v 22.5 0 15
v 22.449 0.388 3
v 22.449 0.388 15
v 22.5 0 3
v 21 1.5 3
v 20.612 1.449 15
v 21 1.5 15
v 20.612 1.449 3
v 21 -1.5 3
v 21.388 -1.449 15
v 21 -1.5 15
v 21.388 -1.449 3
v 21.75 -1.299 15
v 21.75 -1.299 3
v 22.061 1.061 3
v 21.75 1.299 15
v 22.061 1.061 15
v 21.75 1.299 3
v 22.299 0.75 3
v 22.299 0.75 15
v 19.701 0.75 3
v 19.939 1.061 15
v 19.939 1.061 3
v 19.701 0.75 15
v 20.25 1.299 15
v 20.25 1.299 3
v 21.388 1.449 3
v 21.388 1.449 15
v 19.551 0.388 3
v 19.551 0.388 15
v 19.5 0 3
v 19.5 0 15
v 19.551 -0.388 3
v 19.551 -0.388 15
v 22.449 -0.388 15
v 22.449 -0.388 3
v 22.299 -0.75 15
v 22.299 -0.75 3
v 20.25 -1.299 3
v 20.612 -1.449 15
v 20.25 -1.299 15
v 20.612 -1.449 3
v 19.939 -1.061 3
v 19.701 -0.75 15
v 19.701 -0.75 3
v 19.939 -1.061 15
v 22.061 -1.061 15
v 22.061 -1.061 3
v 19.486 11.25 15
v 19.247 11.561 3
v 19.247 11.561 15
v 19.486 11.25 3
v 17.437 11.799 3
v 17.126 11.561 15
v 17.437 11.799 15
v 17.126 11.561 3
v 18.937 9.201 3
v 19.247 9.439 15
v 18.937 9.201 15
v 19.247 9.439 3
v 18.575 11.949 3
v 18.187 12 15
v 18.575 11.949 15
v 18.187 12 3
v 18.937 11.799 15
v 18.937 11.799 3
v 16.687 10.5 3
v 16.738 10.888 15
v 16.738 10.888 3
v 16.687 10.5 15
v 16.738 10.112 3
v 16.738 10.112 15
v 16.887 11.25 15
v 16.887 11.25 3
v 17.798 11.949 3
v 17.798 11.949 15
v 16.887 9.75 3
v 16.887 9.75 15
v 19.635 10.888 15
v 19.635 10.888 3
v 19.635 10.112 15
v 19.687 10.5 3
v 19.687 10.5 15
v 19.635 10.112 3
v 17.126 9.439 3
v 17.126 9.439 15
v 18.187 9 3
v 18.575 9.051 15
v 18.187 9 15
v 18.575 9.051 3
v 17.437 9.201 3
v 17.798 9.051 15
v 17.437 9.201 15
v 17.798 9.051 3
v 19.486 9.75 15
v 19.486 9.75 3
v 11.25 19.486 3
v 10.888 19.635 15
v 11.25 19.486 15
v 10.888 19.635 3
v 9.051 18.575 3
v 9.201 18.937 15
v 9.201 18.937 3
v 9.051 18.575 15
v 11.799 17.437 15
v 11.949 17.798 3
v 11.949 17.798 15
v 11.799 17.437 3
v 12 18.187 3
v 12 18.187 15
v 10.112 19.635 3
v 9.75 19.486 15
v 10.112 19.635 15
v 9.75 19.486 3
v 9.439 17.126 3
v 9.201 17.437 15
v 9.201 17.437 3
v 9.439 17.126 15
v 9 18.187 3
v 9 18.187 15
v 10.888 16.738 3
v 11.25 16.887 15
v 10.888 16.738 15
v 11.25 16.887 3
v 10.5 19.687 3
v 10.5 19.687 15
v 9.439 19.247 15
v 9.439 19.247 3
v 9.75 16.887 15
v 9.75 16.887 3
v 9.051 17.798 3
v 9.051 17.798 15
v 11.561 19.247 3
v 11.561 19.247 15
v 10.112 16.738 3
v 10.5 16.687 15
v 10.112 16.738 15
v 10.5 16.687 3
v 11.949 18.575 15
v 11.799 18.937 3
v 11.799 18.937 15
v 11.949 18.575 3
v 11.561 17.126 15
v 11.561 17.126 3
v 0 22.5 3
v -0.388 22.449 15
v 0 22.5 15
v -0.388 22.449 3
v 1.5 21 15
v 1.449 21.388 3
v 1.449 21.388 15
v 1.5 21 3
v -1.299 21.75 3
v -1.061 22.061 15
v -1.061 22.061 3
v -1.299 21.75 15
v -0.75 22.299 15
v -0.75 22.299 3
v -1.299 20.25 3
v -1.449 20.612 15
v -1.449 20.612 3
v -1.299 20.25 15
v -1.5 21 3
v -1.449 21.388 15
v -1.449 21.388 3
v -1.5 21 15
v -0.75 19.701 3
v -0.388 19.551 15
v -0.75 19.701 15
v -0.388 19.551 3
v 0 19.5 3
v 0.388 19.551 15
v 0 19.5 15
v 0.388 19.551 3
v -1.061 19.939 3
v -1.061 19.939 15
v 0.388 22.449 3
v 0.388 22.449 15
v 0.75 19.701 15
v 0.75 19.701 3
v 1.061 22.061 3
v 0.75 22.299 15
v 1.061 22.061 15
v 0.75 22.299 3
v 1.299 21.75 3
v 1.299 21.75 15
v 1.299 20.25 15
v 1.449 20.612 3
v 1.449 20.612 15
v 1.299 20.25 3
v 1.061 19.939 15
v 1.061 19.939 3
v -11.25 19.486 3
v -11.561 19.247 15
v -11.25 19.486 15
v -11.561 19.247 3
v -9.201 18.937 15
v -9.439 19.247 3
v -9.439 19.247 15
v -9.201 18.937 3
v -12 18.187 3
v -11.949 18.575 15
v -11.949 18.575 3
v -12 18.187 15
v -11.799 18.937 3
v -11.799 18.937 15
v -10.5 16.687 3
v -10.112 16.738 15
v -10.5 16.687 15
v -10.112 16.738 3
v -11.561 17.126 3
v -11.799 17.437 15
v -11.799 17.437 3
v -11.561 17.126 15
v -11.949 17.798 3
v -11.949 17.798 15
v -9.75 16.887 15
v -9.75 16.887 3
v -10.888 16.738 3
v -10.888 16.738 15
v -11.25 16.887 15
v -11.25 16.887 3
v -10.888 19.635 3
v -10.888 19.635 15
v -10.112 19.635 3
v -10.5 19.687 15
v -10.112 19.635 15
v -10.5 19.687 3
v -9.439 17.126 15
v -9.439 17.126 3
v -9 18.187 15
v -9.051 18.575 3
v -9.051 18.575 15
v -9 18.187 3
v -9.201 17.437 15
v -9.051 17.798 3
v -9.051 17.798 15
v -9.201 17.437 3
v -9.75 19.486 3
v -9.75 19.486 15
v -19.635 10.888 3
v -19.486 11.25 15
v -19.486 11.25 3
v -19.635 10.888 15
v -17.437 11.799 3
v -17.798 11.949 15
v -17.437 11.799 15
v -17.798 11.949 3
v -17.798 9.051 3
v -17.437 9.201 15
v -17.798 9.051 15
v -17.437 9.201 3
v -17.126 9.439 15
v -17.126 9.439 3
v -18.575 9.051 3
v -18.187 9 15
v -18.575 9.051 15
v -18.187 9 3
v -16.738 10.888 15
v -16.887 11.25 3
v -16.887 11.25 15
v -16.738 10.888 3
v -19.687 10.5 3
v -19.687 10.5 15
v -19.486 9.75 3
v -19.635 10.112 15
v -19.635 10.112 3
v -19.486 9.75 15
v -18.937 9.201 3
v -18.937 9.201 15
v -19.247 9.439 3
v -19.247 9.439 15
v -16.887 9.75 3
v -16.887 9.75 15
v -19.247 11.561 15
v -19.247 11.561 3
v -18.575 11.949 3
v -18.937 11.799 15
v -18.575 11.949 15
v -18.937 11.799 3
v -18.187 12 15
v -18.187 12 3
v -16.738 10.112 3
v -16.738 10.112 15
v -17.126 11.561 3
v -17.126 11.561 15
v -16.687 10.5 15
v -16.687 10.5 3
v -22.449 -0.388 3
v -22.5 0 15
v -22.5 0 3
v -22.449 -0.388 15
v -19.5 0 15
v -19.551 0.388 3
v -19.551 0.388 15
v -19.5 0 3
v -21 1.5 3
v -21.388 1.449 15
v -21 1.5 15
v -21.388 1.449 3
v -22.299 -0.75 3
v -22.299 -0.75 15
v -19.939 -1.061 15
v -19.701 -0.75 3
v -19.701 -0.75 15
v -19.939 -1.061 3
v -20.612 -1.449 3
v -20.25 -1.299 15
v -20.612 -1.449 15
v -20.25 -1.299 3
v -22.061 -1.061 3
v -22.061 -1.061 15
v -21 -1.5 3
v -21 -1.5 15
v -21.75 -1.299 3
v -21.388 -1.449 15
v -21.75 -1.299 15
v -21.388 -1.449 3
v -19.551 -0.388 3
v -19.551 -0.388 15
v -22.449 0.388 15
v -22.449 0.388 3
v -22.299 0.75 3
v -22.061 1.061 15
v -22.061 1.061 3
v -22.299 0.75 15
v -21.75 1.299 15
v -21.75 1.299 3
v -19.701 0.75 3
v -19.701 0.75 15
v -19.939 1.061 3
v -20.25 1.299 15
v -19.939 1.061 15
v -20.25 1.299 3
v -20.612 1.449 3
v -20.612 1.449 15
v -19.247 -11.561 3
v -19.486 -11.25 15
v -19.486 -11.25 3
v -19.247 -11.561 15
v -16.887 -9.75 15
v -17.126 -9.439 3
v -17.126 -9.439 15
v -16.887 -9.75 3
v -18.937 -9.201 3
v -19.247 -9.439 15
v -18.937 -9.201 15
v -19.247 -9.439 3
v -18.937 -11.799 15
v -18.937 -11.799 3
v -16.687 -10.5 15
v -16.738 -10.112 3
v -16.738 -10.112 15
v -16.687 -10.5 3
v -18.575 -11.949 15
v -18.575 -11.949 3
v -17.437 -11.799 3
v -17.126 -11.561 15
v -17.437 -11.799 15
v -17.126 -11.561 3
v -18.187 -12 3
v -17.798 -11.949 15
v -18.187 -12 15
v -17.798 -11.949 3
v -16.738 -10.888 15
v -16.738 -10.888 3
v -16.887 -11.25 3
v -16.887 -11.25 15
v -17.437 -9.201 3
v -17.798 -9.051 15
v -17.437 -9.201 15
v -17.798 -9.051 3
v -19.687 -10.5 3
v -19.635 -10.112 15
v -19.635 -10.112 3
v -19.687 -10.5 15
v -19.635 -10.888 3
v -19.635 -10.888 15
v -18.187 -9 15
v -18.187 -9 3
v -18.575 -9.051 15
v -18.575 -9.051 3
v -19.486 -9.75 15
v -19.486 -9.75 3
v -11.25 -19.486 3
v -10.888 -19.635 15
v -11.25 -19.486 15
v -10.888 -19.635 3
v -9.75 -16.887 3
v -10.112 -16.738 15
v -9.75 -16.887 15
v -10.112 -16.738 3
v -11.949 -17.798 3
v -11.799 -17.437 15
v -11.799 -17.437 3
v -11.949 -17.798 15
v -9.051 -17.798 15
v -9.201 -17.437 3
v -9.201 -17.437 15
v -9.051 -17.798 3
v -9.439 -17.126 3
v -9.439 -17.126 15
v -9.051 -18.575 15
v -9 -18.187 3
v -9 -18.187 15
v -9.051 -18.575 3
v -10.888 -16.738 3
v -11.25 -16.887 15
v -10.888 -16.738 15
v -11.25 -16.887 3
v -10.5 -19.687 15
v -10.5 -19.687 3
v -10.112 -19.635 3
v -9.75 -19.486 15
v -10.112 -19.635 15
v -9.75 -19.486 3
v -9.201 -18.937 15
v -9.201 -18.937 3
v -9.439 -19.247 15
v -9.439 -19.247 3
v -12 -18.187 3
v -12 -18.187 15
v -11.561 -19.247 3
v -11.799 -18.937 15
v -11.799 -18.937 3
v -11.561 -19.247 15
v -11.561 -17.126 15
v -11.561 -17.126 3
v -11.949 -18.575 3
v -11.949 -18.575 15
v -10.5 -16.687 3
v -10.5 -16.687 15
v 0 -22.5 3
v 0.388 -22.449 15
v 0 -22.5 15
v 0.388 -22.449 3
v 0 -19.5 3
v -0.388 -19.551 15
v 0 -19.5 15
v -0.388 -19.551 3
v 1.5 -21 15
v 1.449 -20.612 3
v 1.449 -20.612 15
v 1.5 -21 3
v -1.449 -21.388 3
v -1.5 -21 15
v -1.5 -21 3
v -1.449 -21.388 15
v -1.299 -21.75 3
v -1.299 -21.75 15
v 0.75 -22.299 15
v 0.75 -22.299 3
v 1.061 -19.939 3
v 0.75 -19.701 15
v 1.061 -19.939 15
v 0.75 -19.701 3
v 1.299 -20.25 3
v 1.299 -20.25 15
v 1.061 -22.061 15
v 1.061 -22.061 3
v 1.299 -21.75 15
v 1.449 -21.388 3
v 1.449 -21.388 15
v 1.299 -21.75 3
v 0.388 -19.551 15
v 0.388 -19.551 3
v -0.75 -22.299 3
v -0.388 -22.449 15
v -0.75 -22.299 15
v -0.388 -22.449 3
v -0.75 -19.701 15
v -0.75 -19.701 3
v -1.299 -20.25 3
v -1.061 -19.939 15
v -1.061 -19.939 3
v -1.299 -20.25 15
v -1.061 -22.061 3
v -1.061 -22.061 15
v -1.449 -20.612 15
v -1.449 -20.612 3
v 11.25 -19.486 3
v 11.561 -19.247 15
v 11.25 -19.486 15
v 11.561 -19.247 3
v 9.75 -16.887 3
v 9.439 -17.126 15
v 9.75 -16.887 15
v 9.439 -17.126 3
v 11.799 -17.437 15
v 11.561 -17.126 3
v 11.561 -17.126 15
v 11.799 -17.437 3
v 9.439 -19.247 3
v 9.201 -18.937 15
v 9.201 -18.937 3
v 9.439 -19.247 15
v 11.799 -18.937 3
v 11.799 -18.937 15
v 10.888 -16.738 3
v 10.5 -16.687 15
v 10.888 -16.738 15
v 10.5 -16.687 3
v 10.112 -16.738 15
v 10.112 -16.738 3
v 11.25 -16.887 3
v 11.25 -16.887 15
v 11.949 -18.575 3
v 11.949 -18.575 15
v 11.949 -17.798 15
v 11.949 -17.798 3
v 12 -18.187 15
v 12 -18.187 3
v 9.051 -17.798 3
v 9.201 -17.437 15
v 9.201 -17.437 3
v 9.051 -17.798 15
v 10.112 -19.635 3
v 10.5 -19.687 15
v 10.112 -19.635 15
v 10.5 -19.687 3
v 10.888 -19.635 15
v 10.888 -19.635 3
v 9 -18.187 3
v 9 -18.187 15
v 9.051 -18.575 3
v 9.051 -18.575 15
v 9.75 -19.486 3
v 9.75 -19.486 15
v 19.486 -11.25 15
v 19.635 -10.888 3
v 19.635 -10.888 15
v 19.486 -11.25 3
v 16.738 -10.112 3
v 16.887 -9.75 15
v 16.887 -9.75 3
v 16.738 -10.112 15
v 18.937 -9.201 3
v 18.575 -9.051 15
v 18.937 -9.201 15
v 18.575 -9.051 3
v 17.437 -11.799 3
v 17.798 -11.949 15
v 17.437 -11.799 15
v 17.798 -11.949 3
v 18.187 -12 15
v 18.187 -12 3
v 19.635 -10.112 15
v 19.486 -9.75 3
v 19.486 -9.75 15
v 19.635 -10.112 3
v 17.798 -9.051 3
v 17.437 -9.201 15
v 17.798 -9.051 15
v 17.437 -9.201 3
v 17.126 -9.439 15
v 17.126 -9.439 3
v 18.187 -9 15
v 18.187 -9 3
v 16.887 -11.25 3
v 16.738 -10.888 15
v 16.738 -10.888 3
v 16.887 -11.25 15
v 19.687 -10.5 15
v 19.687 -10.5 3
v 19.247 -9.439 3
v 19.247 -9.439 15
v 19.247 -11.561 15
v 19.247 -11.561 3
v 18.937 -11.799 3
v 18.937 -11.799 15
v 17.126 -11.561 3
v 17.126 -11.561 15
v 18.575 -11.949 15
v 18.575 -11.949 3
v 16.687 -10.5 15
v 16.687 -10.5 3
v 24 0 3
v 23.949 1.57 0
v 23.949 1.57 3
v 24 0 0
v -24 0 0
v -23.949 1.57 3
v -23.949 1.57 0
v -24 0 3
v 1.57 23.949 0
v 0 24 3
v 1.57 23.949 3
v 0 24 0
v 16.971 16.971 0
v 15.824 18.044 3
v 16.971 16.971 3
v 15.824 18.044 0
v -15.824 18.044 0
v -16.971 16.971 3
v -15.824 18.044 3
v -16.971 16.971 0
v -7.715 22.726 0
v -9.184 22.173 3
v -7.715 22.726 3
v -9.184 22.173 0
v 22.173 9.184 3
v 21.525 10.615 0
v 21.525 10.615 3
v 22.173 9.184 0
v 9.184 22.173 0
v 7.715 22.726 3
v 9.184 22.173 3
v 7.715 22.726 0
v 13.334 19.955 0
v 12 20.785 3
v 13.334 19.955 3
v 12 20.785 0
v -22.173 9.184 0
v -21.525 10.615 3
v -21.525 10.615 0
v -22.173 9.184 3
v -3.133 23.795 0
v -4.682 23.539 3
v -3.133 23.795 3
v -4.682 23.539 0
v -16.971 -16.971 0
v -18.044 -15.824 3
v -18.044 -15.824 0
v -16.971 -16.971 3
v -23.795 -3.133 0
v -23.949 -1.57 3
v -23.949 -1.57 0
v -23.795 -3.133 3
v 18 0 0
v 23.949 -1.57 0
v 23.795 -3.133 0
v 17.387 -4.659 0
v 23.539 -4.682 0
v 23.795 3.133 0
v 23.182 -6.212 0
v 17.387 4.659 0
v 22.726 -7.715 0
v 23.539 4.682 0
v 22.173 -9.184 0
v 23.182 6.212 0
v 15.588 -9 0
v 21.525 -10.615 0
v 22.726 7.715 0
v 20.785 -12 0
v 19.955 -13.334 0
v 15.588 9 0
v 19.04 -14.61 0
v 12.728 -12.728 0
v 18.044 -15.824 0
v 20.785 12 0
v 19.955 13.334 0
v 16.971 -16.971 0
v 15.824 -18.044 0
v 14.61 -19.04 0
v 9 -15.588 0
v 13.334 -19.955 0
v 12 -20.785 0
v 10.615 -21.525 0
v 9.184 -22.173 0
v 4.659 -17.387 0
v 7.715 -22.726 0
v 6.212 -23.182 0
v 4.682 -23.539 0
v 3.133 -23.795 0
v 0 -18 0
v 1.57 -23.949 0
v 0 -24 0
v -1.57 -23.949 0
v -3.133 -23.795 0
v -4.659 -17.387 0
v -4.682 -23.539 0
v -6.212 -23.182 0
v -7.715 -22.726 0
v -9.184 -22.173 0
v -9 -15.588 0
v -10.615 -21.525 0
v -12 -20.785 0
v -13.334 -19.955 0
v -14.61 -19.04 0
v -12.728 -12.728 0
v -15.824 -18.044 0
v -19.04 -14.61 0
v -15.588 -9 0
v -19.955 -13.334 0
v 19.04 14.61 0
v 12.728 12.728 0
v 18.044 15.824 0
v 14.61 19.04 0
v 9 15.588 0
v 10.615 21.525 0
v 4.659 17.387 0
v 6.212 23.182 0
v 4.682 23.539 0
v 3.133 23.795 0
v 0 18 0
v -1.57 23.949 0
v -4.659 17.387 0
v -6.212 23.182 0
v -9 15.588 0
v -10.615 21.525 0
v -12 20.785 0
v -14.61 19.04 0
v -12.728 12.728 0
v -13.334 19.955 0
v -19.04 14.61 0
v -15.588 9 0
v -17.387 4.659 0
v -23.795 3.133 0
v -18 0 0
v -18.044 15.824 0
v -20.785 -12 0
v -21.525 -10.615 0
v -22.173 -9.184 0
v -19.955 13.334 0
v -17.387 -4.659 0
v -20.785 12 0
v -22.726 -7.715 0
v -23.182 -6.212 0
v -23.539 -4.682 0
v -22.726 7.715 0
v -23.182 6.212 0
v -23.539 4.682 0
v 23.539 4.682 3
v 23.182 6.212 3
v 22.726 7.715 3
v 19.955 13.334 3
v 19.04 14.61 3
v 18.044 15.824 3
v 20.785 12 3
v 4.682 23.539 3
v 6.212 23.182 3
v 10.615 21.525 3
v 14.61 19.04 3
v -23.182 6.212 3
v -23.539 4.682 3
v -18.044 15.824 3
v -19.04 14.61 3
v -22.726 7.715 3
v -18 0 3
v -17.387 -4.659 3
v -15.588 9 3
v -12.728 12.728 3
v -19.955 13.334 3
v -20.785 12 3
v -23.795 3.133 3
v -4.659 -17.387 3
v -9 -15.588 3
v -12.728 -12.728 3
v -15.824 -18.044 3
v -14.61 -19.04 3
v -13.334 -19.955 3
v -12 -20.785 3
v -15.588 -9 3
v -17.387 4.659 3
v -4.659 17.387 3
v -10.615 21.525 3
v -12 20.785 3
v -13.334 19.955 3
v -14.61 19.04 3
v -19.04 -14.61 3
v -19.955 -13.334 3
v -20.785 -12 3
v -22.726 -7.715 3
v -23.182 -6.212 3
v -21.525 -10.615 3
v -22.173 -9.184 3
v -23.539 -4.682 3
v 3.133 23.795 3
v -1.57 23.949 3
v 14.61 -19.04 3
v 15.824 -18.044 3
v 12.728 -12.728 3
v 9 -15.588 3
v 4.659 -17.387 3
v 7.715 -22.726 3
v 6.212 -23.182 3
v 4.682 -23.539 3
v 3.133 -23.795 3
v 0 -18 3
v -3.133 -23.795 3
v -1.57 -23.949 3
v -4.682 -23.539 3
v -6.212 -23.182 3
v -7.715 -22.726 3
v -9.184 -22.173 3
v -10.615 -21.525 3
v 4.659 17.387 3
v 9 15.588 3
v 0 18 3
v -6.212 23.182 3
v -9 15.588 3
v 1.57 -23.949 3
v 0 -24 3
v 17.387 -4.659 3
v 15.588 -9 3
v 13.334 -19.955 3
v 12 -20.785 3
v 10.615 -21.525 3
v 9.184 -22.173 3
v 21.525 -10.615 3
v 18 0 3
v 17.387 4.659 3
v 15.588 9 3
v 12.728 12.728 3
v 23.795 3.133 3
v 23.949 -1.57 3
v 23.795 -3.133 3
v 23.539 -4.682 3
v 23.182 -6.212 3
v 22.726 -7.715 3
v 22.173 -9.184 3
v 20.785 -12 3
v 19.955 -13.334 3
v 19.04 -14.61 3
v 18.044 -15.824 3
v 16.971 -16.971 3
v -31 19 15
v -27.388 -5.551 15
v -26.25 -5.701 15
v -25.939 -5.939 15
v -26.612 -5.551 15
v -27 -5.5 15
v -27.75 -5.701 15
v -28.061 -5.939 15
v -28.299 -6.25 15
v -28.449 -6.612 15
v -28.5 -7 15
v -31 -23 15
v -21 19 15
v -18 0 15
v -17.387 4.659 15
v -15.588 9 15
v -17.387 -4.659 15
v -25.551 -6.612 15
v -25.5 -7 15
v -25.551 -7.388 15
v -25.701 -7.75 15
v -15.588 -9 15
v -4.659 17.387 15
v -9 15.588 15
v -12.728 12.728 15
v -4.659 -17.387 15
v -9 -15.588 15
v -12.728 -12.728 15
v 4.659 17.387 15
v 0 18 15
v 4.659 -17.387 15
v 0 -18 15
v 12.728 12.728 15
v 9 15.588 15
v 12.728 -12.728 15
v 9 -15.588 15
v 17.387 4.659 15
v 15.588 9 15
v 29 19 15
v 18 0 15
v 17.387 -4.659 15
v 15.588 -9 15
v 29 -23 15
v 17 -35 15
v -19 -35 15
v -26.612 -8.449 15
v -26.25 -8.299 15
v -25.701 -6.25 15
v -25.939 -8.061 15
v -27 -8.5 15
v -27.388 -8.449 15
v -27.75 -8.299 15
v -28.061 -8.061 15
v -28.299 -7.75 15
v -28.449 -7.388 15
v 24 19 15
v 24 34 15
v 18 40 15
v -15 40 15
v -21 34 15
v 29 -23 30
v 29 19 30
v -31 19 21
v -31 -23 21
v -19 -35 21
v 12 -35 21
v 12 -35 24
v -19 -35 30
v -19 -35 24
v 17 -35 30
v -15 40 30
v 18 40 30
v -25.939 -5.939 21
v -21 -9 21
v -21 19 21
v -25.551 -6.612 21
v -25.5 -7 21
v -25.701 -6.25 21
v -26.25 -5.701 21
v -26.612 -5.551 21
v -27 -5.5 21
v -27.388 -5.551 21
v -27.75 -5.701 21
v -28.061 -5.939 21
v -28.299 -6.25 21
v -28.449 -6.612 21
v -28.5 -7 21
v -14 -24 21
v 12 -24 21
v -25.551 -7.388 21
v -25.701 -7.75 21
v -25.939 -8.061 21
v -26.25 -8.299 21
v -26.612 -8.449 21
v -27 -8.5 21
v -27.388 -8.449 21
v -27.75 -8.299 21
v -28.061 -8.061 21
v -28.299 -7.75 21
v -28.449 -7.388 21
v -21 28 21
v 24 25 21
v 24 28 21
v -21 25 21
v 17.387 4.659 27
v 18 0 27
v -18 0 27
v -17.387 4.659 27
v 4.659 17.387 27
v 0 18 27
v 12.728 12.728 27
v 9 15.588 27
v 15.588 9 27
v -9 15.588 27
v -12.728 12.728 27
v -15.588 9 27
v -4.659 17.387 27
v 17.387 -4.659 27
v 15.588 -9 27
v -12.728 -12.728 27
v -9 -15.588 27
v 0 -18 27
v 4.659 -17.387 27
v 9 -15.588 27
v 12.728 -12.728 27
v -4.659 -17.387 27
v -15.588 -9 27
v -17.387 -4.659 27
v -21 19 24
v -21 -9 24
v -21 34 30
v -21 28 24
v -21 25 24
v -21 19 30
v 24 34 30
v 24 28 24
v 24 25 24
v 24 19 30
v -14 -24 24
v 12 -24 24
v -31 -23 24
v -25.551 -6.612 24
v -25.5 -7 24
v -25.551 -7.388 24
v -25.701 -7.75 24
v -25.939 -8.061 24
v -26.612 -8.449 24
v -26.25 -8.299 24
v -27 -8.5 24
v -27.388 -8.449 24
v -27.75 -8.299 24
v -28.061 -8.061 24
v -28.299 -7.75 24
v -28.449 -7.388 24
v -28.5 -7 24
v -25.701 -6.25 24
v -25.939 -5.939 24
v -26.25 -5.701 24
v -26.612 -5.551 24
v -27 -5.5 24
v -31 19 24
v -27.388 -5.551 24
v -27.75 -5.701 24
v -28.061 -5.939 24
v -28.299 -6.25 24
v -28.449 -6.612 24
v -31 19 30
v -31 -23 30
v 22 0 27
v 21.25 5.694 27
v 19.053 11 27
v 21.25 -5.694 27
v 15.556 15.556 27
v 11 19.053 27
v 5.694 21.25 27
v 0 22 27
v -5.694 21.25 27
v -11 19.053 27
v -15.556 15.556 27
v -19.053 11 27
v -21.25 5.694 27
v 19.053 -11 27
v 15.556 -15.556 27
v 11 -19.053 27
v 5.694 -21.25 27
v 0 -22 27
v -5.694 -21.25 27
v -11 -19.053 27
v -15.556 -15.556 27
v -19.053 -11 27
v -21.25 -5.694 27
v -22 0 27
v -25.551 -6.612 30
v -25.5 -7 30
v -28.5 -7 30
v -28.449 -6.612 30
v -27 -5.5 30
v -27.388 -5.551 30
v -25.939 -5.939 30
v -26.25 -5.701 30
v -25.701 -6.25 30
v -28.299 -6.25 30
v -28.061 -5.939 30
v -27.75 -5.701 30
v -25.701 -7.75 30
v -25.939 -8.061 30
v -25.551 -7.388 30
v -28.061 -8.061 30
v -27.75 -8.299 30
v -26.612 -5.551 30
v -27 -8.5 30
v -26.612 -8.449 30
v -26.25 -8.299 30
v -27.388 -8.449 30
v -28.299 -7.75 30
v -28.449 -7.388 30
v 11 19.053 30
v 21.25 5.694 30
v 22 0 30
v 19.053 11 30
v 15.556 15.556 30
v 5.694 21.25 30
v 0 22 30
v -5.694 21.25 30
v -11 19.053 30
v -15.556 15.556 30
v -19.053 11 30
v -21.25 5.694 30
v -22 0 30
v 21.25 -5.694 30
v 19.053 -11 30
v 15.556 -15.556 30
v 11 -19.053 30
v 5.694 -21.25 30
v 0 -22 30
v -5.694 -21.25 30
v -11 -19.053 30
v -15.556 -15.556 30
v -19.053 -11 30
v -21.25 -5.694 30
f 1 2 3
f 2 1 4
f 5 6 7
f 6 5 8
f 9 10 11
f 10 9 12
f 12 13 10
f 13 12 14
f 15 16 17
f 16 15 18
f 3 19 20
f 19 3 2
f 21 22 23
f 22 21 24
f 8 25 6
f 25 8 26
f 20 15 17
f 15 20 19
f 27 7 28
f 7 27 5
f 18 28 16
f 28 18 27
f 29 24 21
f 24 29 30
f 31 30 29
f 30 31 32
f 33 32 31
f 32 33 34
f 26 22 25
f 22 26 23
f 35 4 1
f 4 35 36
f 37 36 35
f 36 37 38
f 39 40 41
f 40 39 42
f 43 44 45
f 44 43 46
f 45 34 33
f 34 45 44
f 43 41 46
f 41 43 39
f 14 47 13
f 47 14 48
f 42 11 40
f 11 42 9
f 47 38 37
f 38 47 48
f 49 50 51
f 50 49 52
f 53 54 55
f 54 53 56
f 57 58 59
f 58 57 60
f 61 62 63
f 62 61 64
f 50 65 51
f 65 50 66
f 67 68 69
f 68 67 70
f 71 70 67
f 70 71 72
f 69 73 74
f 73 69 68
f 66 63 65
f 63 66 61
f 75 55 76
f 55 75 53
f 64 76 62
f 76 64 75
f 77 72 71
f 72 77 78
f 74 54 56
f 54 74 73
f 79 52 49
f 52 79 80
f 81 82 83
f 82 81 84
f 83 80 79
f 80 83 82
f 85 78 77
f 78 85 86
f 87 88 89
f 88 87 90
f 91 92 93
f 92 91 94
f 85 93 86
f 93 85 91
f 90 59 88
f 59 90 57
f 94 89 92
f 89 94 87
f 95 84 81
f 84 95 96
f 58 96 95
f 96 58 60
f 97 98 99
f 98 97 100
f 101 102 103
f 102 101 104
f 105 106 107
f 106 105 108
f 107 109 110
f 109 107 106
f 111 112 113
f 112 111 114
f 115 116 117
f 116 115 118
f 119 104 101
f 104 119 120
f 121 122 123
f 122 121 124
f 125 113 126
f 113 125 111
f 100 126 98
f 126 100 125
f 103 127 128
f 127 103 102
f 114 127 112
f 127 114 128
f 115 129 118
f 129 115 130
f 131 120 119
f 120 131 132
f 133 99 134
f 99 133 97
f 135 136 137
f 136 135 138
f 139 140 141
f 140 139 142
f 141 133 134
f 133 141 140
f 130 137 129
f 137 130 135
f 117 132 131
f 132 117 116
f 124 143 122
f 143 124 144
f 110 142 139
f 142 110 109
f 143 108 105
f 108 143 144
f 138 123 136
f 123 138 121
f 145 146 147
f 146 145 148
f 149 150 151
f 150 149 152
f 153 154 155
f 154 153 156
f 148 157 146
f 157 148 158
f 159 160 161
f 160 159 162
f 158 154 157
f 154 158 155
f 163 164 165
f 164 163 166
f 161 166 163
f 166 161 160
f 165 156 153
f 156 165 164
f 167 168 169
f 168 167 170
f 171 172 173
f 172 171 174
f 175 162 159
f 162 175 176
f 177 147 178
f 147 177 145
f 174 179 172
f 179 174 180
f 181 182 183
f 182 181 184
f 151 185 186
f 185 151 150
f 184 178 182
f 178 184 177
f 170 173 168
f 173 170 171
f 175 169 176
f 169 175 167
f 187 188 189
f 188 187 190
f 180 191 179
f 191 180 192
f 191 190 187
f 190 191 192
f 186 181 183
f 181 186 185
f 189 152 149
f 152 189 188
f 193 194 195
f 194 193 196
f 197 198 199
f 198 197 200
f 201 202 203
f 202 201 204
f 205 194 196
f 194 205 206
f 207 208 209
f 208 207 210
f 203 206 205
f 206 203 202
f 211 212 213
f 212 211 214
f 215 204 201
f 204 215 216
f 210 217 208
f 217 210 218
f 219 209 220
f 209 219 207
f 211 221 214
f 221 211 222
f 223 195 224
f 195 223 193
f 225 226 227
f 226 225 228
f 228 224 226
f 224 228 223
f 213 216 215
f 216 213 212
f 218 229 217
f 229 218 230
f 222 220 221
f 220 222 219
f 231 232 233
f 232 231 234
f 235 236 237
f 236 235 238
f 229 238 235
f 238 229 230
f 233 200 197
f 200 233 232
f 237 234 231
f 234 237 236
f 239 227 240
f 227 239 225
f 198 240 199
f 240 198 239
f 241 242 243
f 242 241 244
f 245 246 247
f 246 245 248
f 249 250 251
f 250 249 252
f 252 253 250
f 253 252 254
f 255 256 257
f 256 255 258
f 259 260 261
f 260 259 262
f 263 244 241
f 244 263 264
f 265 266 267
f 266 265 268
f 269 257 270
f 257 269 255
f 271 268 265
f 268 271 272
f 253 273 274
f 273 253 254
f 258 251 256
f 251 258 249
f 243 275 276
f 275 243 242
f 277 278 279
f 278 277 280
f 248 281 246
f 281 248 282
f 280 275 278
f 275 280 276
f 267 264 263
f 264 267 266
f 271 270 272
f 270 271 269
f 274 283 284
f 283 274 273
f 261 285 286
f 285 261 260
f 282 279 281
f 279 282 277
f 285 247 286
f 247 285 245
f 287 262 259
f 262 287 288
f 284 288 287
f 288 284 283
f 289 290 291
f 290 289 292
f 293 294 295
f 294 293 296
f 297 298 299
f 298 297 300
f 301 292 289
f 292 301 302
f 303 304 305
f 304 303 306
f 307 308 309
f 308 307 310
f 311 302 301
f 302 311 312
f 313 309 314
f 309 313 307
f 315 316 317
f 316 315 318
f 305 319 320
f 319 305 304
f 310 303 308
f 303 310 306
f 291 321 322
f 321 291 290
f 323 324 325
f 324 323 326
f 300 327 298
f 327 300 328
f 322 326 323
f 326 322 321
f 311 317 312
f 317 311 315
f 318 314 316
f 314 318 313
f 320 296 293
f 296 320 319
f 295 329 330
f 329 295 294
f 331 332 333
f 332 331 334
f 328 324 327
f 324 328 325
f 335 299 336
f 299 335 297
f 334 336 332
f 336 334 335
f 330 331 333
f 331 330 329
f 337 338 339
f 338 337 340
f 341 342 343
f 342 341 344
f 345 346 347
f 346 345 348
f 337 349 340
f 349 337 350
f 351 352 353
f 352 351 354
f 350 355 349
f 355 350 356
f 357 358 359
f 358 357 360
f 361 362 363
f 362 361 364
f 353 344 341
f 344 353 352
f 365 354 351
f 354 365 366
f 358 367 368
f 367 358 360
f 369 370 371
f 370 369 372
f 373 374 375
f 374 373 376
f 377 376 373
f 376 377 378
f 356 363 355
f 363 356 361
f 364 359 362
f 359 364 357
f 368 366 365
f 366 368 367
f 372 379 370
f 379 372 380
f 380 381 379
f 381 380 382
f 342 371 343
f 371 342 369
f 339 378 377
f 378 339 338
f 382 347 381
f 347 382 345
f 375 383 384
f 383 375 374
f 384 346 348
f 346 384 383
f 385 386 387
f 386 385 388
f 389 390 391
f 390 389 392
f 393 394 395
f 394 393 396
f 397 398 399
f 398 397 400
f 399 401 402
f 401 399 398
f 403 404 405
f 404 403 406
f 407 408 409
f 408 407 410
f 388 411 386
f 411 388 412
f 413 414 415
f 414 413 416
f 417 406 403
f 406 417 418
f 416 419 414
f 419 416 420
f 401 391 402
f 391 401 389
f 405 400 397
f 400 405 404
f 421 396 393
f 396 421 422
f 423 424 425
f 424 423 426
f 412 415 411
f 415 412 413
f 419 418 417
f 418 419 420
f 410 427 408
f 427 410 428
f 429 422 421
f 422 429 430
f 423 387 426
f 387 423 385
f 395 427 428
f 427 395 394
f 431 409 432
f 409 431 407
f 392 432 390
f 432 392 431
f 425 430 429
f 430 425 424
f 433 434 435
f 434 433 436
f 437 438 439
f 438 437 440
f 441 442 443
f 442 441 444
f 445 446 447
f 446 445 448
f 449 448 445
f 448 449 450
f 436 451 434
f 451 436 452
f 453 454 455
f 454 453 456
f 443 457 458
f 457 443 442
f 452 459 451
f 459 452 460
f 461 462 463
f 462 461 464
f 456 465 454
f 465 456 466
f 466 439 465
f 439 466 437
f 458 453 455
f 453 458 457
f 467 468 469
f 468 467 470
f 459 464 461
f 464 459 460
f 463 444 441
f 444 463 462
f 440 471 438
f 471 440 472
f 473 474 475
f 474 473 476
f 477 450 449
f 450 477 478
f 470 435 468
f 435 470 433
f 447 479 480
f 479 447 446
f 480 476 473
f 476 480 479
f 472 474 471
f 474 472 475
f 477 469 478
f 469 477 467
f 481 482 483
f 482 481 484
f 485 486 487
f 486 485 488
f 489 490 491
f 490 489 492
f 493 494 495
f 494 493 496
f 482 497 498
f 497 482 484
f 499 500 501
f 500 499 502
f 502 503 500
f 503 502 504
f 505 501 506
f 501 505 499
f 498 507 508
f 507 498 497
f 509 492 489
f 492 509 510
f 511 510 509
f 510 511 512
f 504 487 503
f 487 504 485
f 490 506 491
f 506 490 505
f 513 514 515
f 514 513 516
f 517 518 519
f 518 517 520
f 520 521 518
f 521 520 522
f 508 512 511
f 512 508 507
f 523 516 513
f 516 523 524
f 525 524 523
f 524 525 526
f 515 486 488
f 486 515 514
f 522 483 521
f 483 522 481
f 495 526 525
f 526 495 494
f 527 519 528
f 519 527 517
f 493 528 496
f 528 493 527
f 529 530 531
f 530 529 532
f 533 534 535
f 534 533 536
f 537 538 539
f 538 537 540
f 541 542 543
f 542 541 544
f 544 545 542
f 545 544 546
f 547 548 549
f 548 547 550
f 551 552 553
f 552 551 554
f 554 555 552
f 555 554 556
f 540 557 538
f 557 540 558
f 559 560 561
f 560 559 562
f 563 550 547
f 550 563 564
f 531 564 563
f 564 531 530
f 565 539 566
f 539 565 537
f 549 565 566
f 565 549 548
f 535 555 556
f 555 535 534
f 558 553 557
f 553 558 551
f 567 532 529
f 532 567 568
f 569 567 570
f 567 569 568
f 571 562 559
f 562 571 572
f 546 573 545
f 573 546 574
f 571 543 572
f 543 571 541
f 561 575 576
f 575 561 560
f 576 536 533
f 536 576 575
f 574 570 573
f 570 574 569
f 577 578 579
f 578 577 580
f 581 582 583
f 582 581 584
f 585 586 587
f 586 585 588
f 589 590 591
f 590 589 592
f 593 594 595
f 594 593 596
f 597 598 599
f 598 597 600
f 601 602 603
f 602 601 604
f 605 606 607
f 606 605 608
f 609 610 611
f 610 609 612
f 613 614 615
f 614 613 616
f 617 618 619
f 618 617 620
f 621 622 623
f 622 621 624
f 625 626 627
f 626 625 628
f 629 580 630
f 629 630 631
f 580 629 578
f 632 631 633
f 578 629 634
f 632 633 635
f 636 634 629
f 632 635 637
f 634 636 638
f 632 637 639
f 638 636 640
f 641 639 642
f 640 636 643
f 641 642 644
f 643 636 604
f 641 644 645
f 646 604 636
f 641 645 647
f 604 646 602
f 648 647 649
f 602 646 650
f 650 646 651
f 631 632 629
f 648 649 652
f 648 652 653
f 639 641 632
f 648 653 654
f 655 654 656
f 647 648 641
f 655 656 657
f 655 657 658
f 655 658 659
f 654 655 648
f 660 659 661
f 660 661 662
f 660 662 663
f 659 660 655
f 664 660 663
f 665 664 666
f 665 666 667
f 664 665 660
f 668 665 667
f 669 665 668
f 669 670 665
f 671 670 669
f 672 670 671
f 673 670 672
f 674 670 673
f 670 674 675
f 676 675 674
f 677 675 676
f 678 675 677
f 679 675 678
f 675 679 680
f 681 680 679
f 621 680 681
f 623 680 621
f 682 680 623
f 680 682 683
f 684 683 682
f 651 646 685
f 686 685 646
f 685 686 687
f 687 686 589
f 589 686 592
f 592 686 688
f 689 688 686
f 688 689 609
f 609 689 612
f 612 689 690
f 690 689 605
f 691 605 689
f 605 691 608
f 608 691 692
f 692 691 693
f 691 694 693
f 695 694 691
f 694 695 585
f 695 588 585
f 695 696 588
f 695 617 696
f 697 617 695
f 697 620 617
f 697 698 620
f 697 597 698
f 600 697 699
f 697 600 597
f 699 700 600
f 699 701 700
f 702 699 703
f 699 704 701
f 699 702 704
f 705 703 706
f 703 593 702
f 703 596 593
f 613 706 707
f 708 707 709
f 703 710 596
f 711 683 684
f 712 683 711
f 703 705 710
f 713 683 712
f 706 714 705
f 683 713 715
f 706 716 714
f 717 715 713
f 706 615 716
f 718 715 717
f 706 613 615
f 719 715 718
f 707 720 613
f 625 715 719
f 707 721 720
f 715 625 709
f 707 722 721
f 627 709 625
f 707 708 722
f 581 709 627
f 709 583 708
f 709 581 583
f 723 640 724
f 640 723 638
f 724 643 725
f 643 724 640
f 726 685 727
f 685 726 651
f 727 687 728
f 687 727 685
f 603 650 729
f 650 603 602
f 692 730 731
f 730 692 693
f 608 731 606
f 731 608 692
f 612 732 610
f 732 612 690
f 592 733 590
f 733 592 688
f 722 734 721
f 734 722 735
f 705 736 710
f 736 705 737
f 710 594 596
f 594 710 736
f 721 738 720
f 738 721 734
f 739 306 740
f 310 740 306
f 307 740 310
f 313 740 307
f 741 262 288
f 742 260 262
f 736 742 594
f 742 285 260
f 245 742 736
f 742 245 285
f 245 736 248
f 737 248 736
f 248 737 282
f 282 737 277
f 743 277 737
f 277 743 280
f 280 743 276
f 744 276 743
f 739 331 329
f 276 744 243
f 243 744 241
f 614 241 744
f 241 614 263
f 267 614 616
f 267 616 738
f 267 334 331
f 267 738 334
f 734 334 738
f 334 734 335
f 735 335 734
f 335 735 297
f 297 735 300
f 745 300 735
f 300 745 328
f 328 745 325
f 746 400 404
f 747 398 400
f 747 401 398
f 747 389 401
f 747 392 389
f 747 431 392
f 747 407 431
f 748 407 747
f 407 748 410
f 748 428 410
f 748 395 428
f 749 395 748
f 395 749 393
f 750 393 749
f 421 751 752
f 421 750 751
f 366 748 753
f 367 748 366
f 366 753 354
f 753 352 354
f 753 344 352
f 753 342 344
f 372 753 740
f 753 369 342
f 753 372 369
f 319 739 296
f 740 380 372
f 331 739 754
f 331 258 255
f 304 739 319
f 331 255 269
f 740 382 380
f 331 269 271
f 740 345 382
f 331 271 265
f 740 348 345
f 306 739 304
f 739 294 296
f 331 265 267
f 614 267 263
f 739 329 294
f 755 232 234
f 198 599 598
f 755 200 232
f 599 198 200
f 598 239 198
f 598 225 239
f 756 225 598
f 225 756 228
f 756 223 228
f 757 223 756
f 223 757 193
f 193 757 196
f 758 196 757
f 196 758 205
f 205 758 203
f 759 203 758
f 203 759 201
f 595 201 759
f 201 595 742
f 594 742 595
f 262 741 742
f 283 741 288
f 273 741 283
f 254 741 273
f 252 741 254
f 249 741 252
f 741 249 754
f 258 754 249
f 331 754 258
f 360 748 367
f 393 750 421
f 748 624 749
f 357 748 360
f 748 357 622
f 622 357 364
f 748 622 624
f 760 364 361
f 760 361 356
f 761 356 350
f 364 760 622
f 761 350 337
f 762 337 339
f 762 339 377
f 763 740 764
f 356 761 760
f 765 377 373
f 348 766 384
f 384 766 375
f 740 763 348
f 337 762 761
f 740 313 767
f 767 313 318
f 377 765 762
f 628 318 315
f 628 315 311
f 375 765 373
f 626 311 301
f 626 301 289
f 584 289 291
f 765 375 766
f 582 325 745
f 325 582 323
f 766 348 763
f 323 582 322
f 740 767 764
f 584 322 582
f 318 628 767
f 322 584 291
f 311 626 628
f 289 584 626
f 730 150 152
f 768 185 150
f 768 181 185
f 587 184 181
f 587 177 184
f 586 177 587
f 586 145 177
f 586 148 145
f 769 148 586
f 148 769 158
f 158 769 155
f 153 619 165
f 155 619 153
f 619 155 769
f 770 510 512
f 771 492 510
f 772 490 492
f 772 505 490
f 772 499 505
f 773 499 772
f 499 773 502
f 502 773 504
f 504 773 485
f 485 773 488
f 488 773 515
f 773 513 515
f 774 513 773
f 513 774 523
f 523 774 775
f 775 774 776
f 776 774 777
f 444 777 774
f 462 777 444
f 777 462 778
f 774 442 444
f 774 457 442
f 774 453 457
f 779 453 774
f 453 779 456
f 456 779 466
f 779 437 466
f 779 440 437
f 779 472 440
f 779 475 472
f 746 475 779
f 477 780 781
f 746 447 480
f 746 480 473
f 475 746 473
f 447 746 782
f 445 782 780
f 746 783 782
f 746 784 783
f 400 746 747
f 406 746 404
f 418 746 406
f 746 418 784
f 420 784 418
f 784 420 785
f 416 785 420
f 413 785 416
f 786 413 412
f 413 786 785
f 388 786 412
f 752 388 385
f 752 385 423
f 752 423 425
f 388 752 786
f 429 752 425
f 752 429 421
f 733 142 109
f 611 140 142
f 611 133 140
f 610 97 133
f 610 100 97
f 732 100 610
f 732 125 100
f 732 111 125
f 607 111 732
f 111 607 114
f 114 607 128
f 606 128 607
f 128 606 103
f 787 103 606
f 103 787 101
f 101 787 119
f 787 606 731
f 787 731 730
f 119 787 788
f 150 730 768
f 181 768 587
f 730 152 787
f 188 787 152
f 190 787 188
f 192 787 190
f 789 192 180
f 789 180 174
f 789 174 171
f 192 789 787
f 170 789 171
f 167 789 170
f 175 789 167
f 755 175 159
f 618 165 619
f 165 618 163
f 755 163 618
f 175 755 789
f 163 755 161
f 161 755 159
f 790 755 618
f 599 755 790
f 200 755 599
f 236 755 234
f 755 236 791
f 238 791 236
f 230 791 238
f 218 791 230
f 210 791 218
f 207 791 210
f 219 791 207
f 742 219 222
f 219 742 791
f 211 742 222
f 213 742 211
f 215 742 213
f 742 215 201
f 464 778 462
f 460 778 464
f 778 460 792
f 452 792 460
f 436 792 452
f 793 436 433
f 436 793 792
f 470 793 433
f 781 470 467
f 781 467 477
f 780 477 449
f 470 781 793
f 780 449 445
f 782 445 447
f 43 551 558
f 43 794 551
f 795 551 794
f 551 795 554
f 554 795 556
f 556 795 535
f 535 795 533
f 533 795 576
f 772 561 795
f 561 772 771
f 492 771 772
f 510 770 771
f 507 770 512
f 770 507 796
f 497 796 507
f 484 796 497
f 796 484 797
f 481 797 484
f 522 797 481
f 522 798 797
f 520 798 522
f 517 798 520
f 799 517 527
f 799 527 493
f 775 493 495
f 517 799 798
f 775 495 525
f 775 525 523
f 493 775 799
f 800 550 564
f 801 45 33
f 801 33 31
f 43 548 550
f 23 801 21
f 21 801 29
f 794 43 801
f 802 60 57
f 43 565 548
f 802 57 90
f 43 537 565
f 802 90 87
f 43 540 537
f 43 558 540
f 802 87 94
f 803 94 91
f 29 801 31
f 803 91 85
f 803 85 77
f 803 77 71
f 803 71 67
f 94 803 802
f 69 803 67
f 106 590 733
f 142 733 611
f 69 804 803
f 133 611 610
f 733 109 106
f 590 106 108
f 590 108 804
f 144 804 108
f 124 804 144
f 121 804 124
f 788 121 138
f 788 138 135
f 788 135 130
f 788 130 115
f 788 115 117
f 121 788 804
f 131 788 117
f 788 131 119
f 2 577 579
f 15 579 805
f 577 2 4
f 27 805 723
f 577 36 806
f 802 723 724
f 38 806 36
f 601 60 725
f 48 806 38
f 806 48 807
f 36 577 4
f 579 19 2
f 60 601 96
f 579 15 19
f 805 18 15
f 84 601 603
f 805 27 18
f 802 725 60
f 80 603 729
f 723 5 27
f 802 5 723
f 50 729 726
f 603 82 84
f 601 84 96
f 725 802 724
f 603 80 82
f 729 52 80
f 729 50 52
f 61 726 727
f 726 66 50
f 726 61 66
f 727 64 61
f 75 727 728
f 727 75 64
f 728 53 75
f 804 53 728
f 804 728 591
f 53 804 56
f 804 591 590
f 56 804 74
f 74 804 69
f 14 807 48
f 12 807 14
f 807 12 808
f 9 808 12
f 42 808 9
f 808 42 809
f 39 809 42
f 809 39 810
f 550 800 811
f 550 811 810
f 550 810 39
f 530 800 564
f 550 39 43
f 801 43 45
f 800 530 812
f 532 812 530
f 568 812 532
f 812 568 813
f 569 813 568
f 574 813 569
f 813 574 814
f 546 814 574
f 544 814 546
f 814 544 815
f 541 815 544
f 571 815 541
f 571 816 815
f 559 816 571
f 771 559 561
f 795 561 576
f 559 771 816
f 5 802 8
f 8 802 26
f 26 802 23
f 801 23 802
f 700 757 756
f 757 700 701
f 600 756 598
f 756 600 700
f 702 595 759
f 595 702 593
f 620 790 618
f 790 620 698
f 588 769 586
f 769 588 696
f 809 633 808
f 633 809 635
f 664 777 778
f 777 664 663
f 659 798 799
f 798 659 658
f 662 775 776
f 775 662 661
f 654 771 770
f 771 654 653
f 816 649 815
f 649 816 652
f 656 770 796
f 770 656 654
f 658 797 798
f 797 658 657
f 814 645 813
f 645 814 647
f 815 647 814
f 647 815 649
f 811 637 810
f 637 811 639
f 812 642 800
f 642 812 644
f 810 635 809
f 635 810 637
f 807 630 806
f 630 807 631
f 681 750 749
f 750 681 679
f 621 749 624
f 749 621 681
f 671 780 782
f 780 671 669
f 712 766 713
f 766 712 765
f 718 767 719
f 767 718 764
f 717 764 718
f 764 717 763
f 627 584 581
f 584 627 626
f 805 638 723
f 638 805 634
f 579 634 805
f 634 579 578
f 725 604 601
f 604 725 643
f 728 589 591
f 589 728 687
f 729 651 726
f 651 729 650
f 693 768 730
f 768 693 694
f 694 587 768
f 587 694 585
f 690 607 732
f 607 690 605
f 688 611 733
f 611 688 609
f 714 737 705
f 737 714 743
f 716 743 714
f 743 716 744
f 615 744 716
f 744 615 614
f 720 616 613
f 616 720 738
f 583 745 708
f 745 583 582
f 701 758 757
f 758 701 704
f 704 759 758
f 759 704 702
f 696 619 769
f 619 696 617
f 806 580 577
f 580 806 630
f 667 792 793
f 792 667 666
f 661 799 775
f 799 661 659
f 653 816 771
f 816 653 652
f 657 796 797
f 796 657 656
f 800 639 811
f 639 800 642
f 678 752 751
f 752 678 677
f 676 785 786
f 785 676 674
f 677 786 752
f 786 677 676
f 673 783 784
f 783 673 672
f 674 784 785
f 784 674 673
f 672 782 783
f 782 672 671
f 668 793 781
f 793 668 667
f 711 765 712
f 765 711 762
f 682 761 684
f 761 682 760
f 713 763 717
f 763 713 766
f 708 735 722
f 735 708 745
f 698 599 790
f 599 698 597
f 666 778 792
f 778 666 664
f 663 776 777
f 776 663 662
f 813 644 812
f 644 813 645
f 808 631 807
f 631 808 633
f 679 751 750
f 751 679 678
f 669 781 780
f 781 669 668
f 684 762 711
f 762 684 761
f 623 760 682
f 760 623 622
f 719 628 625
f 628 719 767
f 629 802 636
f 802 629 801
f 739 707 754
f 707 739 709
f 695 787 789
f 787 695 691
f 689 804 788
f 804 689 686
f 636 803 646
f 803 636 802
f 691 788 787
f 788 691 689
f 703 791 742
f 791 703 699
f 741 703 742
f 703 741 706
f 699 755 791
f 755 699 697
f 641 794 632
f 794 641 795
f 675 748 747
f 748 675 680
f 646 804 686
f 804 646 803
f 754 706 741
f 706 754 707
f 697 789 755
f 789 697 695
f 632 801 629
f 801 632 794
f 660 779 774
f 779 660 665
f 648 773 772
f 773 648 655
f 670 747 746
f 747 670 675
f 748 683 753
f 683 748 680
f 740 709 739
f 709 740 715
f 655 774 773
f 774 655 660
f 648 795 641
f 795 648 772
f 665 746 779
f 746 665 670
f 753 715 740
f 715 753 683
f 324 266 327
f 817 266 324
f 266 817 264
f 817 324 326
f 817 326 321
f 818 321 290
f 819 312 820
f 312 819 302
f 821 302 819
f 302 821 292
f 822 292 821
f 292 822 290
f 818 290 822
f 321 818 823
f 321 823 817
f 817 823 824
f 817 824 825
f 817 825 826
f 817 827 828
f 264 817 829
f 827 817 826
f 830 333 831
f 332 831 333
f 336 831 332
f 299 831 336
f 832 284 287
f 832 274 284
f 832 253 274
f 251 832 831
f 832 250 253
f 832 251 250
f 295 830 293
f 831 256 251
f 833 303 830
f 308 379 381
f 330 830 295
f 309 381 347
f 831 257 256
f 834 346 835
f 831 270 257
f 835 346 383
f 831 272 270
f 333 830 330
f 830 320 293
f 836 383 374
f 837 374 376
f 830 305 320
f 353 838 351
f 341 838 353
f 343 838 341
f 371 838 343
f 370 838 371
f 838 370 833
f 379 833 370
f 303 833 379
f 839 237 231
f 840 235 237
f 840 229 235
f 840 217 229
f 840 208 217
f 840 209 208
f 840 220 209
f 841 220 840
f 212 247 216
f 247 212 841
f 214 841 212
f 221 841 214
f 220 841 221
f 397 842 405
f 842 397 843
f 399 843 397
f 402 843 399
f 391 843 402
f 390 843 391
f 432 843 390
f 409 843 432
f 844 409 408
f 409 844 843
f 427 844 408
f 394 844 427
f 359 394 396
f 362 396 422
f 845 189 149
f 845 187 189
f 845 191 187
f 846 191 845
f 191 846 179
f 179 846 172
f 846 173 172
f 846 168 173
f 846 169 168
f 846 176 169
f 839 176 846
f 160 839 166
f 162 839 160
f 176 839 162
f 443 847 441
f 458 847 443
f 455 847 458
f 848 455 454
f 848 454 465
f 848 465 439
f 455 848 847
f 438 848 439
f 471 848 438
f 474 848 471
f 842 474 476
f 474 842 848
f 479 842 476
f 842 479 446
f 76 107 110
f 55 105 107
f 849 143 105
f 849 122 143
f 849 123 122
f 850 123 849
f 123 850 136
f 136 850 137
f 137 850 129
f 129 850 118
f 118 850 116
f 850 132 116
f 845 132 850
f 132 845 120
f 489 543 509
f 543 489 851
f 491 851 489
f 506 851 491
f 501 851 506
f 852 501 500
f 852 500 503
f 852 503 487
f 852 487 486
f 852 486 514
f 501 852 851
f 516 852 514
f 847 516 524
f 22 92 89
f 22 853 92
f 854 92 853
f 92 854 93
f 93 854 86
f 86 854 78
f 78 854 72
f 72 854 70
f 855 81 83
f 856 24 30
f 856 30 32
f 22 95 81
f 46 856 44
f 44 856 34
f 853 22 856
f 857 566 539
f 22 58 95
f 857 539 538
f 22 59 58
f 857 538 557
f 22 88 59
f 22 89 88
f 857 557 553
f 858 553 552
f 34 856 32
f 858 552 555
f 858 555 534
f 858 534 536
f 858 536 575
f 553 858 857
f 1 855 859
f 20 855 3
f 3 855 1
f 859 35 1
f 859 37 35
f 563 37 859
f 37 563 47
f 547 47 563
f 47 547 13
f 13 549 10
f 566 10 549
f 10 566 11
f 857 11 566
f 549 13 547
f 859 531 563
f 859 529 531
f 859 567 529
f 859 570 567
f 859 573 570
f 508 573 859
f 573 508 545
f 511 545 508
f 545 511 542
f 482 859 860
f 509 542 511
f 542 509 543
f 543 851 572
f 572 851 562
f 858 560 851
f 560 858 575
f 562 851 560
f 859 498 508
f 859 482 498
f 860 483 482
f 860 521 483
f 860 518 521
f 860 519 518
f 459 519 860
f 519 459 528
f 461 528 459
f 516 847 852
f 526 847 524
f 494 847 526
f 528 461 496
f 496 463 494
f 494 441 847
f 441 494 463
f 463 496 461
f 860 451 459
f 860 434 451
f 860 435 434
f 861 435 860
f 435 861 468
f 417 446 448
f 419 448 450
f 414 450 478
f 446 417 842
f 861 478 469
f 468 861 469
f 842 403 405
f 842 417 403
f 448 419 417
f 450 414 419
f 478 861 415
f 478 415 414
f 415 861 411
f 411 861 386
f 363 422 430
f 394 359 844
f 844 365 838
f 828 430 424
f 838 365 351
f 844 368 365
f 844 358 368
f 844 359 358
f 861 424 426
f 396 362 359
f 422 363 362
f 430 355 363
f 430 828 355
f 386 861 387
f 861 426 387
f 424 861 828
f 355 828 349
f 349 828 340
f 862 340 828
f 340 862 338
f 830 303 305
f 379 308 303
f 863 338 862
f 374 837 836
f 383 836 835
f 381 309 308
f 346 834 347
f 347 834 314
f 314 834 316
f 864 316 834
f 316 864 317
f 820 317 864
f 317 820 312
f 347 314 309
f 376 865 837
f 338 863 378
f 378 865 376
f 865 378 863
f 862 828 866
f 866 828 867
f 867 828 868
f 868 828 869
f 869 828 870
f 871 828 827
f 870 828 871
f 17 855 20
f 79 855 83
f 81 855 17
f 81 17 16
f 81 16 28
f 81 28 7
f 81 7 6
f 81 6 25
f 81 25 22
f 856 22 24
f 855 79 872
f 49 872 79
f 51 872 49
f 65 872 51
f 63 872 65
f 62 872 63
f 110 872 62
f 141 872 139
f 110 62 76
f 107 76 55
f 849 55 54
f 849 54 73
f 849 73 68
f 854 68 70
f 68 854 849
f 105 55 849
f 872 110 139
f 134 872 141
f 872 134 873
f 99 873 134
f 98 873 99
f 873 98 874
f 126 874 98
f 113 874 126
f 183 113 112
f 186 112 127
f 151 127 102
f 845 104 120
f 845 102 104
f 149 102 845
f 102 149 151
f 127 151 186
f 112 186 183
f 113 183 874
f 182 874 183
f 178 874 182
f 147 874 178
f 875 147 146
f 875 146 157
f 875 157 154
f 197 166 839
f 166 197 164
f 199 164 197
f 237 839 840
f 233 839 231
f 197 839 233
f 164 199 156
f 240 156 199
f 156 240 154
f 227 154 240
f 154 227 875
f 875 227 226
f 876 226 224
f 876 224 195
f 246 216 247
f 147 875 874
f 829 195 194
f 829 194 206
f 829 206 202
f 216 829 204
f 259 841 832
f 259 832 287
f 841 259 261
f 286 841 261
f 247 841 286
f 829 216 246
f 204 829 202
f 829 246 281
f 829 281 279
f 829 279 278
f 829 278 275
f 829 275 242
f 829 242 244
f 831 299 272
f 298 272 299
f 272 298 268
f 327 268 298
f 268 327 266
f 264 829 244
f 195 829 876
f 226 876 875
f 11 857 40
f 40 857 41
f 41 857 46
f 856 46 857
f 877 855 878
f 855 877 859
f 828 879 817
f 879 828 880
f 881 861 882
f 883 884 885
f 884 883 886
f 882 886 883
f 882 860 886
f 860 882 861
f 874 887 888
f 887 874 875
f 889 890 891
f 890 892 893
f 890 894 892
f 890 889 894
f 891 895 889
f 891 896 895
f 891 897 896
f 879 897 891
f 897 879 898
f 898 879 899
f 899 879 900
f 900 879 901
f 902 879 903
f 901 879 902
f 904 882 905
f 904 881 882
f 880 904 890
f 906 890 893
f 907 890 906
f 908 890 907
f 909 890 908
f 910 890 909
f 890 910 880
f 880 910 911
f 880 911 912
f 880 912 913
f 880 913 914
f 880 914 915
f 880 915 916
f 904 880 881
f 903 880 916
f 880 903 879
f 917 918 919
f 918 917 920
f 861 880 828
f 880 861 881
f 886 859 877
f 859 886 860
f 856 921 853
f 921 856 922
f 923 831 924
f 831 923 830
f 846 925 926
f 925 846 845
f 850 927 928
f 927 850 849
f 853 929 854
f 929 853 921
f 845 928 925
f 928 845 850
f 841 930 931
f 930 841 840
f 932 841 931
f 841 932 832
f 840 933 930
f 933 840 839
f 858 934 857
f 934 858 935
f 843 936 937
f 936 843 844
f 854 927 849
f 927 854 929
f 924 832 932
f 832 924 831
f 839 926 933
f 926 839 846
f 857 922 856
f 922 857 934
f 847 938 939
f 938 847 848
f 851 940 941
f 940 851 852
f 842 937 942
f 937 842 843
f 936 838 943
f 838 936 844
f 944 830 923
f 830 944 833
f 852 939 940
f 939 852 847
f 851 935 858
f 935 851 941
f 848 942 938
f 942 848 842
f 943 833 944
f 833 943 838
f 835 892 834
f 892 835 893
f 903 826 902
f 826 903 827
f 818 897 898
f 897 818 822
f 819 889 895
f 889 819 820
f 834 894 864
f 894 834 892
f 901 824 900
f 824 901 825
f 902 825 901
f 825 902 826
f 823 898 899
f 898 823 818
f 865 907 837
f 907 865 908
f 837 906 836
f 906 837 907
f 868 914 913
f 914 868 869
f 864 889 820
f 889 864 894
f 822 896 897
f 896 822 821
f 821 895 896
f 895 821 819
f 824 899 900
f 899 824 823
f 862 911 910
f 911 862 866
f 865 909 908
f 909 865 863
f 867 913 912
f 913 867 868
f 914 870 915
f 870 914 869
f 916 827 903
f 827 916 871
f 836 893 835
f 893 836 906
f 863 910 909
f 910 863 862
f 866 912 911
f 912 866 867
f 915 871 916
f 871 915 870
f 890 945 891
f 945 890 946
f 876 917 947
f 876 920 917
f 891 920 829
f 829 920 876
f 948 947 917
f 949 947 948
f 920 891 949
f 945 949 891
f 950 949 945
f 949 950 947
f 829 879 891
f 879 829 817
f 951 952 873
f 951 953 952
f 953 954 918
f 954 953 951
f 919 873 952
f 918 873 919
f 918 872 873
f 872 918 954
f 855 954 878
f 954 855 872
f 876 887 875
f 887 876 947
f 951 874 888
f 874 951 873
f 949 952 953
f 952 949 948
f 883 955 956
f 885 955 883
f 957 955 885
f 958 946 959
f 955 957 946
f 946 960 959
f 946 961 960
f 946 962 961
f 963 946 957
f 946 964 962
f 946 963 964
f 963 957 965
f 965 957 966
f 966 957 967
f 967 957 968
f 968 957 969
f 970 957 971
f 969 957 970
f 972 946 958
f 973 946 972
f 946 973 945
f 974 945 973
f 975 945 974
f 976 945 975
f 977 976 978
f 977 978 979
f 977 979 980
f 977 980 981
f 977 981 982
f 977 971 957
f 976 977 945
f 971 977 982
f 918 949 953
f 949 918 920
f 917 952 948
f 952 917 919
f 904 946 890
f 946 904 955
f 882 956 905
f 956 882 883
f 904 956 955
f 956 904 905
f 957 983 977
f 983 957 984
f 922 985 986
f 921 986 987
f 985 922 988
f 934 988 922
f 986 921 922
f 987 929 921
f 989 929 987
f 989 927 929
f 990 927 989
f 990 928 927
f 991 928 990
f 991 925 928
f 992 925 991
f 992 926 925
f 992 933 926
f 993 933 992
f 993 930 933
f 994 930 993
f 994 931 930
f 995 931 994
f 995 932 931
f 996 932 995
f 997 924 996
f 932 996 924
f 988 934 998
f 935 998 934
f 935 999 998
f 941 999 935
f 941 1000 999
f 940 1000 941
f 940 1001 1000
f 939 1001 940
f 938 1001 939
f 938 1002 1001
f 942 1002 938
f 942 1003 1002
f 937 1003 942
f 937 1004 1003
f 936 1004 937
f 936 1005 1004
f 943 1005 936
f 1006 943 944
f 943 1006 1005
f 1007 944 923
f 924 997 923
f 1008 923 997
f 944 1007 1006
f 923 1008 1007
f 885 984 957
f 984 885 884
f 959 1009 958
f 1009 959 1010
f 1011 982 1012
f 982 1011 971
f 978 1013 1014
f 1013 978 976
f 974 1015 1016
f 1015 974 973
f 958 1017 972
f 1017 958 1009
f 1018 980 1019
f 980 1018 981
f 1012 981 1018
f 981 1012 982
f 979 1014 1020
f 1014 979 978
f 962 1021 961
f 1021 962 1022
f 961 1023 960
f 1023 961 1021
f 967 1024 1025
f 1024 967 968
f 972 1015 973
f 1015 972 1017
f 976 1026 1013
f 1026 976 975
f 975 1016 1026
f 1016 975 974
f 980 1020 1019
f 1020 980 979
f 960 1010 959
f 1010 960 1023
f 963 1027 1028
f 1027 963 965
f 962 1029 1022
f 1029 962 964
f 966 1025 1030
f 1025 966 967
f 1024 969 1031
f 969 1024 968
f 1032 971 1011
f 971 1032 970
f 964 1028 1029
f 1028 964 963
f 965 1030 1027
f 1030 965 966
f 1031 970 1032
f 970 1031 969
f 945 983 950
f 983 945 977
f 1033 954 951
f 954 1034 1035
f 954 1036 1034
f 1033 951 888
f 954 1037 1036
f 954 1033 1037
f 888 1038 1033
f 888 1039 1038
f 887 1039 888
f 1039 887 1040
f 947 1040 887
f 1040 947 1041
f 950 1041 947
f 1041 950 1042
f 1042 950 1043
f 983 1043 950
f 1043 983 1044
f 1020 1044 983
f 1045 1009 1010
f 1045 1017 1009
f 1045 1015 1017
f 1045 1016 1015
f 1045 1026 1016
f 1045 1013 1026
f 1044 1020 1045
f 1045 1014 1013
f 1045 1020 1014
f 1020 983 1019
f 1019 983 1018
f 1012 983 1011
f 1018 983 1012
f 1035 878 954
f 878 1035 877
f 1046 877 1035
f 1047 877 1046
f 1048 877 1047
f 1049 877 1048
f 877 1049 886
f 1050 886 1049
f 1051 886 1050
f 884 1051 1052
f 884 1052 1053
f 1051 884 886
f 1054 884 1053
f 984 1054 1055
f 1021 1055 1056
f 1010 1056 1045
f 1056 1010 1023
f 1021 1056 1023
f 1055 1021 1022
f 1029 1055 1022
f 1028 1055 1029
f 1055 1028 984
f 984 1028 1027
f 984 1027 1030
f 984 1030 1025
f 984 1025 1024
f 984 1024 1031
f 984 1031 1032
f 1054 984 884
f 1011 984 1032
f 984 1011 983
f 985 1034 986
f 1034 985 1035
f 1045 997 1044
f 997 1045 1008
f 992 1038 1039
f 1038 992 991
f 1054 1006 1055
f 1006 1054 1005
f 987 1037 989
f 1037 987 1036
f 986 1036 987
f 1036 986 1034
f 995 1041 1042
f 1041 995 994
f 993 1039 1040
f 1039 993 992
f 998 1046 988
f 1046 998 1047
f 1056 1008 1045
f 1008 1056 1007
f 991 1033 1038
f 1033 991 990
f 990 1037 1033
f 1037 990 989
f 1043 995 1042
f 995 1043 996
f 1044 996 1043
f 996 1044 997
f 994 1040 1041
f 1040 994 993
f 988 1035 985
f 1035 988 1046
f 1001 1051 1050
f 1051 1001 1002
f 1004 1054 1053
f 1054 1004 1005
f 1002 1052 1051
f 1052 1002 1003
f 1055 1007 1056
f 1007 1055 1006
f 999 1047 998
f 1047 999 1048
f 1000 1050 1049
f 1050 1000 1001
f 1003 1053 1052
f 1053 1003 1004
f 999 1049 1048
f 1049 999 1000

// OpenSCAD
include <../main.scad>
$holeflg = false;
$chamfflg = false;

ASSY_RB();
